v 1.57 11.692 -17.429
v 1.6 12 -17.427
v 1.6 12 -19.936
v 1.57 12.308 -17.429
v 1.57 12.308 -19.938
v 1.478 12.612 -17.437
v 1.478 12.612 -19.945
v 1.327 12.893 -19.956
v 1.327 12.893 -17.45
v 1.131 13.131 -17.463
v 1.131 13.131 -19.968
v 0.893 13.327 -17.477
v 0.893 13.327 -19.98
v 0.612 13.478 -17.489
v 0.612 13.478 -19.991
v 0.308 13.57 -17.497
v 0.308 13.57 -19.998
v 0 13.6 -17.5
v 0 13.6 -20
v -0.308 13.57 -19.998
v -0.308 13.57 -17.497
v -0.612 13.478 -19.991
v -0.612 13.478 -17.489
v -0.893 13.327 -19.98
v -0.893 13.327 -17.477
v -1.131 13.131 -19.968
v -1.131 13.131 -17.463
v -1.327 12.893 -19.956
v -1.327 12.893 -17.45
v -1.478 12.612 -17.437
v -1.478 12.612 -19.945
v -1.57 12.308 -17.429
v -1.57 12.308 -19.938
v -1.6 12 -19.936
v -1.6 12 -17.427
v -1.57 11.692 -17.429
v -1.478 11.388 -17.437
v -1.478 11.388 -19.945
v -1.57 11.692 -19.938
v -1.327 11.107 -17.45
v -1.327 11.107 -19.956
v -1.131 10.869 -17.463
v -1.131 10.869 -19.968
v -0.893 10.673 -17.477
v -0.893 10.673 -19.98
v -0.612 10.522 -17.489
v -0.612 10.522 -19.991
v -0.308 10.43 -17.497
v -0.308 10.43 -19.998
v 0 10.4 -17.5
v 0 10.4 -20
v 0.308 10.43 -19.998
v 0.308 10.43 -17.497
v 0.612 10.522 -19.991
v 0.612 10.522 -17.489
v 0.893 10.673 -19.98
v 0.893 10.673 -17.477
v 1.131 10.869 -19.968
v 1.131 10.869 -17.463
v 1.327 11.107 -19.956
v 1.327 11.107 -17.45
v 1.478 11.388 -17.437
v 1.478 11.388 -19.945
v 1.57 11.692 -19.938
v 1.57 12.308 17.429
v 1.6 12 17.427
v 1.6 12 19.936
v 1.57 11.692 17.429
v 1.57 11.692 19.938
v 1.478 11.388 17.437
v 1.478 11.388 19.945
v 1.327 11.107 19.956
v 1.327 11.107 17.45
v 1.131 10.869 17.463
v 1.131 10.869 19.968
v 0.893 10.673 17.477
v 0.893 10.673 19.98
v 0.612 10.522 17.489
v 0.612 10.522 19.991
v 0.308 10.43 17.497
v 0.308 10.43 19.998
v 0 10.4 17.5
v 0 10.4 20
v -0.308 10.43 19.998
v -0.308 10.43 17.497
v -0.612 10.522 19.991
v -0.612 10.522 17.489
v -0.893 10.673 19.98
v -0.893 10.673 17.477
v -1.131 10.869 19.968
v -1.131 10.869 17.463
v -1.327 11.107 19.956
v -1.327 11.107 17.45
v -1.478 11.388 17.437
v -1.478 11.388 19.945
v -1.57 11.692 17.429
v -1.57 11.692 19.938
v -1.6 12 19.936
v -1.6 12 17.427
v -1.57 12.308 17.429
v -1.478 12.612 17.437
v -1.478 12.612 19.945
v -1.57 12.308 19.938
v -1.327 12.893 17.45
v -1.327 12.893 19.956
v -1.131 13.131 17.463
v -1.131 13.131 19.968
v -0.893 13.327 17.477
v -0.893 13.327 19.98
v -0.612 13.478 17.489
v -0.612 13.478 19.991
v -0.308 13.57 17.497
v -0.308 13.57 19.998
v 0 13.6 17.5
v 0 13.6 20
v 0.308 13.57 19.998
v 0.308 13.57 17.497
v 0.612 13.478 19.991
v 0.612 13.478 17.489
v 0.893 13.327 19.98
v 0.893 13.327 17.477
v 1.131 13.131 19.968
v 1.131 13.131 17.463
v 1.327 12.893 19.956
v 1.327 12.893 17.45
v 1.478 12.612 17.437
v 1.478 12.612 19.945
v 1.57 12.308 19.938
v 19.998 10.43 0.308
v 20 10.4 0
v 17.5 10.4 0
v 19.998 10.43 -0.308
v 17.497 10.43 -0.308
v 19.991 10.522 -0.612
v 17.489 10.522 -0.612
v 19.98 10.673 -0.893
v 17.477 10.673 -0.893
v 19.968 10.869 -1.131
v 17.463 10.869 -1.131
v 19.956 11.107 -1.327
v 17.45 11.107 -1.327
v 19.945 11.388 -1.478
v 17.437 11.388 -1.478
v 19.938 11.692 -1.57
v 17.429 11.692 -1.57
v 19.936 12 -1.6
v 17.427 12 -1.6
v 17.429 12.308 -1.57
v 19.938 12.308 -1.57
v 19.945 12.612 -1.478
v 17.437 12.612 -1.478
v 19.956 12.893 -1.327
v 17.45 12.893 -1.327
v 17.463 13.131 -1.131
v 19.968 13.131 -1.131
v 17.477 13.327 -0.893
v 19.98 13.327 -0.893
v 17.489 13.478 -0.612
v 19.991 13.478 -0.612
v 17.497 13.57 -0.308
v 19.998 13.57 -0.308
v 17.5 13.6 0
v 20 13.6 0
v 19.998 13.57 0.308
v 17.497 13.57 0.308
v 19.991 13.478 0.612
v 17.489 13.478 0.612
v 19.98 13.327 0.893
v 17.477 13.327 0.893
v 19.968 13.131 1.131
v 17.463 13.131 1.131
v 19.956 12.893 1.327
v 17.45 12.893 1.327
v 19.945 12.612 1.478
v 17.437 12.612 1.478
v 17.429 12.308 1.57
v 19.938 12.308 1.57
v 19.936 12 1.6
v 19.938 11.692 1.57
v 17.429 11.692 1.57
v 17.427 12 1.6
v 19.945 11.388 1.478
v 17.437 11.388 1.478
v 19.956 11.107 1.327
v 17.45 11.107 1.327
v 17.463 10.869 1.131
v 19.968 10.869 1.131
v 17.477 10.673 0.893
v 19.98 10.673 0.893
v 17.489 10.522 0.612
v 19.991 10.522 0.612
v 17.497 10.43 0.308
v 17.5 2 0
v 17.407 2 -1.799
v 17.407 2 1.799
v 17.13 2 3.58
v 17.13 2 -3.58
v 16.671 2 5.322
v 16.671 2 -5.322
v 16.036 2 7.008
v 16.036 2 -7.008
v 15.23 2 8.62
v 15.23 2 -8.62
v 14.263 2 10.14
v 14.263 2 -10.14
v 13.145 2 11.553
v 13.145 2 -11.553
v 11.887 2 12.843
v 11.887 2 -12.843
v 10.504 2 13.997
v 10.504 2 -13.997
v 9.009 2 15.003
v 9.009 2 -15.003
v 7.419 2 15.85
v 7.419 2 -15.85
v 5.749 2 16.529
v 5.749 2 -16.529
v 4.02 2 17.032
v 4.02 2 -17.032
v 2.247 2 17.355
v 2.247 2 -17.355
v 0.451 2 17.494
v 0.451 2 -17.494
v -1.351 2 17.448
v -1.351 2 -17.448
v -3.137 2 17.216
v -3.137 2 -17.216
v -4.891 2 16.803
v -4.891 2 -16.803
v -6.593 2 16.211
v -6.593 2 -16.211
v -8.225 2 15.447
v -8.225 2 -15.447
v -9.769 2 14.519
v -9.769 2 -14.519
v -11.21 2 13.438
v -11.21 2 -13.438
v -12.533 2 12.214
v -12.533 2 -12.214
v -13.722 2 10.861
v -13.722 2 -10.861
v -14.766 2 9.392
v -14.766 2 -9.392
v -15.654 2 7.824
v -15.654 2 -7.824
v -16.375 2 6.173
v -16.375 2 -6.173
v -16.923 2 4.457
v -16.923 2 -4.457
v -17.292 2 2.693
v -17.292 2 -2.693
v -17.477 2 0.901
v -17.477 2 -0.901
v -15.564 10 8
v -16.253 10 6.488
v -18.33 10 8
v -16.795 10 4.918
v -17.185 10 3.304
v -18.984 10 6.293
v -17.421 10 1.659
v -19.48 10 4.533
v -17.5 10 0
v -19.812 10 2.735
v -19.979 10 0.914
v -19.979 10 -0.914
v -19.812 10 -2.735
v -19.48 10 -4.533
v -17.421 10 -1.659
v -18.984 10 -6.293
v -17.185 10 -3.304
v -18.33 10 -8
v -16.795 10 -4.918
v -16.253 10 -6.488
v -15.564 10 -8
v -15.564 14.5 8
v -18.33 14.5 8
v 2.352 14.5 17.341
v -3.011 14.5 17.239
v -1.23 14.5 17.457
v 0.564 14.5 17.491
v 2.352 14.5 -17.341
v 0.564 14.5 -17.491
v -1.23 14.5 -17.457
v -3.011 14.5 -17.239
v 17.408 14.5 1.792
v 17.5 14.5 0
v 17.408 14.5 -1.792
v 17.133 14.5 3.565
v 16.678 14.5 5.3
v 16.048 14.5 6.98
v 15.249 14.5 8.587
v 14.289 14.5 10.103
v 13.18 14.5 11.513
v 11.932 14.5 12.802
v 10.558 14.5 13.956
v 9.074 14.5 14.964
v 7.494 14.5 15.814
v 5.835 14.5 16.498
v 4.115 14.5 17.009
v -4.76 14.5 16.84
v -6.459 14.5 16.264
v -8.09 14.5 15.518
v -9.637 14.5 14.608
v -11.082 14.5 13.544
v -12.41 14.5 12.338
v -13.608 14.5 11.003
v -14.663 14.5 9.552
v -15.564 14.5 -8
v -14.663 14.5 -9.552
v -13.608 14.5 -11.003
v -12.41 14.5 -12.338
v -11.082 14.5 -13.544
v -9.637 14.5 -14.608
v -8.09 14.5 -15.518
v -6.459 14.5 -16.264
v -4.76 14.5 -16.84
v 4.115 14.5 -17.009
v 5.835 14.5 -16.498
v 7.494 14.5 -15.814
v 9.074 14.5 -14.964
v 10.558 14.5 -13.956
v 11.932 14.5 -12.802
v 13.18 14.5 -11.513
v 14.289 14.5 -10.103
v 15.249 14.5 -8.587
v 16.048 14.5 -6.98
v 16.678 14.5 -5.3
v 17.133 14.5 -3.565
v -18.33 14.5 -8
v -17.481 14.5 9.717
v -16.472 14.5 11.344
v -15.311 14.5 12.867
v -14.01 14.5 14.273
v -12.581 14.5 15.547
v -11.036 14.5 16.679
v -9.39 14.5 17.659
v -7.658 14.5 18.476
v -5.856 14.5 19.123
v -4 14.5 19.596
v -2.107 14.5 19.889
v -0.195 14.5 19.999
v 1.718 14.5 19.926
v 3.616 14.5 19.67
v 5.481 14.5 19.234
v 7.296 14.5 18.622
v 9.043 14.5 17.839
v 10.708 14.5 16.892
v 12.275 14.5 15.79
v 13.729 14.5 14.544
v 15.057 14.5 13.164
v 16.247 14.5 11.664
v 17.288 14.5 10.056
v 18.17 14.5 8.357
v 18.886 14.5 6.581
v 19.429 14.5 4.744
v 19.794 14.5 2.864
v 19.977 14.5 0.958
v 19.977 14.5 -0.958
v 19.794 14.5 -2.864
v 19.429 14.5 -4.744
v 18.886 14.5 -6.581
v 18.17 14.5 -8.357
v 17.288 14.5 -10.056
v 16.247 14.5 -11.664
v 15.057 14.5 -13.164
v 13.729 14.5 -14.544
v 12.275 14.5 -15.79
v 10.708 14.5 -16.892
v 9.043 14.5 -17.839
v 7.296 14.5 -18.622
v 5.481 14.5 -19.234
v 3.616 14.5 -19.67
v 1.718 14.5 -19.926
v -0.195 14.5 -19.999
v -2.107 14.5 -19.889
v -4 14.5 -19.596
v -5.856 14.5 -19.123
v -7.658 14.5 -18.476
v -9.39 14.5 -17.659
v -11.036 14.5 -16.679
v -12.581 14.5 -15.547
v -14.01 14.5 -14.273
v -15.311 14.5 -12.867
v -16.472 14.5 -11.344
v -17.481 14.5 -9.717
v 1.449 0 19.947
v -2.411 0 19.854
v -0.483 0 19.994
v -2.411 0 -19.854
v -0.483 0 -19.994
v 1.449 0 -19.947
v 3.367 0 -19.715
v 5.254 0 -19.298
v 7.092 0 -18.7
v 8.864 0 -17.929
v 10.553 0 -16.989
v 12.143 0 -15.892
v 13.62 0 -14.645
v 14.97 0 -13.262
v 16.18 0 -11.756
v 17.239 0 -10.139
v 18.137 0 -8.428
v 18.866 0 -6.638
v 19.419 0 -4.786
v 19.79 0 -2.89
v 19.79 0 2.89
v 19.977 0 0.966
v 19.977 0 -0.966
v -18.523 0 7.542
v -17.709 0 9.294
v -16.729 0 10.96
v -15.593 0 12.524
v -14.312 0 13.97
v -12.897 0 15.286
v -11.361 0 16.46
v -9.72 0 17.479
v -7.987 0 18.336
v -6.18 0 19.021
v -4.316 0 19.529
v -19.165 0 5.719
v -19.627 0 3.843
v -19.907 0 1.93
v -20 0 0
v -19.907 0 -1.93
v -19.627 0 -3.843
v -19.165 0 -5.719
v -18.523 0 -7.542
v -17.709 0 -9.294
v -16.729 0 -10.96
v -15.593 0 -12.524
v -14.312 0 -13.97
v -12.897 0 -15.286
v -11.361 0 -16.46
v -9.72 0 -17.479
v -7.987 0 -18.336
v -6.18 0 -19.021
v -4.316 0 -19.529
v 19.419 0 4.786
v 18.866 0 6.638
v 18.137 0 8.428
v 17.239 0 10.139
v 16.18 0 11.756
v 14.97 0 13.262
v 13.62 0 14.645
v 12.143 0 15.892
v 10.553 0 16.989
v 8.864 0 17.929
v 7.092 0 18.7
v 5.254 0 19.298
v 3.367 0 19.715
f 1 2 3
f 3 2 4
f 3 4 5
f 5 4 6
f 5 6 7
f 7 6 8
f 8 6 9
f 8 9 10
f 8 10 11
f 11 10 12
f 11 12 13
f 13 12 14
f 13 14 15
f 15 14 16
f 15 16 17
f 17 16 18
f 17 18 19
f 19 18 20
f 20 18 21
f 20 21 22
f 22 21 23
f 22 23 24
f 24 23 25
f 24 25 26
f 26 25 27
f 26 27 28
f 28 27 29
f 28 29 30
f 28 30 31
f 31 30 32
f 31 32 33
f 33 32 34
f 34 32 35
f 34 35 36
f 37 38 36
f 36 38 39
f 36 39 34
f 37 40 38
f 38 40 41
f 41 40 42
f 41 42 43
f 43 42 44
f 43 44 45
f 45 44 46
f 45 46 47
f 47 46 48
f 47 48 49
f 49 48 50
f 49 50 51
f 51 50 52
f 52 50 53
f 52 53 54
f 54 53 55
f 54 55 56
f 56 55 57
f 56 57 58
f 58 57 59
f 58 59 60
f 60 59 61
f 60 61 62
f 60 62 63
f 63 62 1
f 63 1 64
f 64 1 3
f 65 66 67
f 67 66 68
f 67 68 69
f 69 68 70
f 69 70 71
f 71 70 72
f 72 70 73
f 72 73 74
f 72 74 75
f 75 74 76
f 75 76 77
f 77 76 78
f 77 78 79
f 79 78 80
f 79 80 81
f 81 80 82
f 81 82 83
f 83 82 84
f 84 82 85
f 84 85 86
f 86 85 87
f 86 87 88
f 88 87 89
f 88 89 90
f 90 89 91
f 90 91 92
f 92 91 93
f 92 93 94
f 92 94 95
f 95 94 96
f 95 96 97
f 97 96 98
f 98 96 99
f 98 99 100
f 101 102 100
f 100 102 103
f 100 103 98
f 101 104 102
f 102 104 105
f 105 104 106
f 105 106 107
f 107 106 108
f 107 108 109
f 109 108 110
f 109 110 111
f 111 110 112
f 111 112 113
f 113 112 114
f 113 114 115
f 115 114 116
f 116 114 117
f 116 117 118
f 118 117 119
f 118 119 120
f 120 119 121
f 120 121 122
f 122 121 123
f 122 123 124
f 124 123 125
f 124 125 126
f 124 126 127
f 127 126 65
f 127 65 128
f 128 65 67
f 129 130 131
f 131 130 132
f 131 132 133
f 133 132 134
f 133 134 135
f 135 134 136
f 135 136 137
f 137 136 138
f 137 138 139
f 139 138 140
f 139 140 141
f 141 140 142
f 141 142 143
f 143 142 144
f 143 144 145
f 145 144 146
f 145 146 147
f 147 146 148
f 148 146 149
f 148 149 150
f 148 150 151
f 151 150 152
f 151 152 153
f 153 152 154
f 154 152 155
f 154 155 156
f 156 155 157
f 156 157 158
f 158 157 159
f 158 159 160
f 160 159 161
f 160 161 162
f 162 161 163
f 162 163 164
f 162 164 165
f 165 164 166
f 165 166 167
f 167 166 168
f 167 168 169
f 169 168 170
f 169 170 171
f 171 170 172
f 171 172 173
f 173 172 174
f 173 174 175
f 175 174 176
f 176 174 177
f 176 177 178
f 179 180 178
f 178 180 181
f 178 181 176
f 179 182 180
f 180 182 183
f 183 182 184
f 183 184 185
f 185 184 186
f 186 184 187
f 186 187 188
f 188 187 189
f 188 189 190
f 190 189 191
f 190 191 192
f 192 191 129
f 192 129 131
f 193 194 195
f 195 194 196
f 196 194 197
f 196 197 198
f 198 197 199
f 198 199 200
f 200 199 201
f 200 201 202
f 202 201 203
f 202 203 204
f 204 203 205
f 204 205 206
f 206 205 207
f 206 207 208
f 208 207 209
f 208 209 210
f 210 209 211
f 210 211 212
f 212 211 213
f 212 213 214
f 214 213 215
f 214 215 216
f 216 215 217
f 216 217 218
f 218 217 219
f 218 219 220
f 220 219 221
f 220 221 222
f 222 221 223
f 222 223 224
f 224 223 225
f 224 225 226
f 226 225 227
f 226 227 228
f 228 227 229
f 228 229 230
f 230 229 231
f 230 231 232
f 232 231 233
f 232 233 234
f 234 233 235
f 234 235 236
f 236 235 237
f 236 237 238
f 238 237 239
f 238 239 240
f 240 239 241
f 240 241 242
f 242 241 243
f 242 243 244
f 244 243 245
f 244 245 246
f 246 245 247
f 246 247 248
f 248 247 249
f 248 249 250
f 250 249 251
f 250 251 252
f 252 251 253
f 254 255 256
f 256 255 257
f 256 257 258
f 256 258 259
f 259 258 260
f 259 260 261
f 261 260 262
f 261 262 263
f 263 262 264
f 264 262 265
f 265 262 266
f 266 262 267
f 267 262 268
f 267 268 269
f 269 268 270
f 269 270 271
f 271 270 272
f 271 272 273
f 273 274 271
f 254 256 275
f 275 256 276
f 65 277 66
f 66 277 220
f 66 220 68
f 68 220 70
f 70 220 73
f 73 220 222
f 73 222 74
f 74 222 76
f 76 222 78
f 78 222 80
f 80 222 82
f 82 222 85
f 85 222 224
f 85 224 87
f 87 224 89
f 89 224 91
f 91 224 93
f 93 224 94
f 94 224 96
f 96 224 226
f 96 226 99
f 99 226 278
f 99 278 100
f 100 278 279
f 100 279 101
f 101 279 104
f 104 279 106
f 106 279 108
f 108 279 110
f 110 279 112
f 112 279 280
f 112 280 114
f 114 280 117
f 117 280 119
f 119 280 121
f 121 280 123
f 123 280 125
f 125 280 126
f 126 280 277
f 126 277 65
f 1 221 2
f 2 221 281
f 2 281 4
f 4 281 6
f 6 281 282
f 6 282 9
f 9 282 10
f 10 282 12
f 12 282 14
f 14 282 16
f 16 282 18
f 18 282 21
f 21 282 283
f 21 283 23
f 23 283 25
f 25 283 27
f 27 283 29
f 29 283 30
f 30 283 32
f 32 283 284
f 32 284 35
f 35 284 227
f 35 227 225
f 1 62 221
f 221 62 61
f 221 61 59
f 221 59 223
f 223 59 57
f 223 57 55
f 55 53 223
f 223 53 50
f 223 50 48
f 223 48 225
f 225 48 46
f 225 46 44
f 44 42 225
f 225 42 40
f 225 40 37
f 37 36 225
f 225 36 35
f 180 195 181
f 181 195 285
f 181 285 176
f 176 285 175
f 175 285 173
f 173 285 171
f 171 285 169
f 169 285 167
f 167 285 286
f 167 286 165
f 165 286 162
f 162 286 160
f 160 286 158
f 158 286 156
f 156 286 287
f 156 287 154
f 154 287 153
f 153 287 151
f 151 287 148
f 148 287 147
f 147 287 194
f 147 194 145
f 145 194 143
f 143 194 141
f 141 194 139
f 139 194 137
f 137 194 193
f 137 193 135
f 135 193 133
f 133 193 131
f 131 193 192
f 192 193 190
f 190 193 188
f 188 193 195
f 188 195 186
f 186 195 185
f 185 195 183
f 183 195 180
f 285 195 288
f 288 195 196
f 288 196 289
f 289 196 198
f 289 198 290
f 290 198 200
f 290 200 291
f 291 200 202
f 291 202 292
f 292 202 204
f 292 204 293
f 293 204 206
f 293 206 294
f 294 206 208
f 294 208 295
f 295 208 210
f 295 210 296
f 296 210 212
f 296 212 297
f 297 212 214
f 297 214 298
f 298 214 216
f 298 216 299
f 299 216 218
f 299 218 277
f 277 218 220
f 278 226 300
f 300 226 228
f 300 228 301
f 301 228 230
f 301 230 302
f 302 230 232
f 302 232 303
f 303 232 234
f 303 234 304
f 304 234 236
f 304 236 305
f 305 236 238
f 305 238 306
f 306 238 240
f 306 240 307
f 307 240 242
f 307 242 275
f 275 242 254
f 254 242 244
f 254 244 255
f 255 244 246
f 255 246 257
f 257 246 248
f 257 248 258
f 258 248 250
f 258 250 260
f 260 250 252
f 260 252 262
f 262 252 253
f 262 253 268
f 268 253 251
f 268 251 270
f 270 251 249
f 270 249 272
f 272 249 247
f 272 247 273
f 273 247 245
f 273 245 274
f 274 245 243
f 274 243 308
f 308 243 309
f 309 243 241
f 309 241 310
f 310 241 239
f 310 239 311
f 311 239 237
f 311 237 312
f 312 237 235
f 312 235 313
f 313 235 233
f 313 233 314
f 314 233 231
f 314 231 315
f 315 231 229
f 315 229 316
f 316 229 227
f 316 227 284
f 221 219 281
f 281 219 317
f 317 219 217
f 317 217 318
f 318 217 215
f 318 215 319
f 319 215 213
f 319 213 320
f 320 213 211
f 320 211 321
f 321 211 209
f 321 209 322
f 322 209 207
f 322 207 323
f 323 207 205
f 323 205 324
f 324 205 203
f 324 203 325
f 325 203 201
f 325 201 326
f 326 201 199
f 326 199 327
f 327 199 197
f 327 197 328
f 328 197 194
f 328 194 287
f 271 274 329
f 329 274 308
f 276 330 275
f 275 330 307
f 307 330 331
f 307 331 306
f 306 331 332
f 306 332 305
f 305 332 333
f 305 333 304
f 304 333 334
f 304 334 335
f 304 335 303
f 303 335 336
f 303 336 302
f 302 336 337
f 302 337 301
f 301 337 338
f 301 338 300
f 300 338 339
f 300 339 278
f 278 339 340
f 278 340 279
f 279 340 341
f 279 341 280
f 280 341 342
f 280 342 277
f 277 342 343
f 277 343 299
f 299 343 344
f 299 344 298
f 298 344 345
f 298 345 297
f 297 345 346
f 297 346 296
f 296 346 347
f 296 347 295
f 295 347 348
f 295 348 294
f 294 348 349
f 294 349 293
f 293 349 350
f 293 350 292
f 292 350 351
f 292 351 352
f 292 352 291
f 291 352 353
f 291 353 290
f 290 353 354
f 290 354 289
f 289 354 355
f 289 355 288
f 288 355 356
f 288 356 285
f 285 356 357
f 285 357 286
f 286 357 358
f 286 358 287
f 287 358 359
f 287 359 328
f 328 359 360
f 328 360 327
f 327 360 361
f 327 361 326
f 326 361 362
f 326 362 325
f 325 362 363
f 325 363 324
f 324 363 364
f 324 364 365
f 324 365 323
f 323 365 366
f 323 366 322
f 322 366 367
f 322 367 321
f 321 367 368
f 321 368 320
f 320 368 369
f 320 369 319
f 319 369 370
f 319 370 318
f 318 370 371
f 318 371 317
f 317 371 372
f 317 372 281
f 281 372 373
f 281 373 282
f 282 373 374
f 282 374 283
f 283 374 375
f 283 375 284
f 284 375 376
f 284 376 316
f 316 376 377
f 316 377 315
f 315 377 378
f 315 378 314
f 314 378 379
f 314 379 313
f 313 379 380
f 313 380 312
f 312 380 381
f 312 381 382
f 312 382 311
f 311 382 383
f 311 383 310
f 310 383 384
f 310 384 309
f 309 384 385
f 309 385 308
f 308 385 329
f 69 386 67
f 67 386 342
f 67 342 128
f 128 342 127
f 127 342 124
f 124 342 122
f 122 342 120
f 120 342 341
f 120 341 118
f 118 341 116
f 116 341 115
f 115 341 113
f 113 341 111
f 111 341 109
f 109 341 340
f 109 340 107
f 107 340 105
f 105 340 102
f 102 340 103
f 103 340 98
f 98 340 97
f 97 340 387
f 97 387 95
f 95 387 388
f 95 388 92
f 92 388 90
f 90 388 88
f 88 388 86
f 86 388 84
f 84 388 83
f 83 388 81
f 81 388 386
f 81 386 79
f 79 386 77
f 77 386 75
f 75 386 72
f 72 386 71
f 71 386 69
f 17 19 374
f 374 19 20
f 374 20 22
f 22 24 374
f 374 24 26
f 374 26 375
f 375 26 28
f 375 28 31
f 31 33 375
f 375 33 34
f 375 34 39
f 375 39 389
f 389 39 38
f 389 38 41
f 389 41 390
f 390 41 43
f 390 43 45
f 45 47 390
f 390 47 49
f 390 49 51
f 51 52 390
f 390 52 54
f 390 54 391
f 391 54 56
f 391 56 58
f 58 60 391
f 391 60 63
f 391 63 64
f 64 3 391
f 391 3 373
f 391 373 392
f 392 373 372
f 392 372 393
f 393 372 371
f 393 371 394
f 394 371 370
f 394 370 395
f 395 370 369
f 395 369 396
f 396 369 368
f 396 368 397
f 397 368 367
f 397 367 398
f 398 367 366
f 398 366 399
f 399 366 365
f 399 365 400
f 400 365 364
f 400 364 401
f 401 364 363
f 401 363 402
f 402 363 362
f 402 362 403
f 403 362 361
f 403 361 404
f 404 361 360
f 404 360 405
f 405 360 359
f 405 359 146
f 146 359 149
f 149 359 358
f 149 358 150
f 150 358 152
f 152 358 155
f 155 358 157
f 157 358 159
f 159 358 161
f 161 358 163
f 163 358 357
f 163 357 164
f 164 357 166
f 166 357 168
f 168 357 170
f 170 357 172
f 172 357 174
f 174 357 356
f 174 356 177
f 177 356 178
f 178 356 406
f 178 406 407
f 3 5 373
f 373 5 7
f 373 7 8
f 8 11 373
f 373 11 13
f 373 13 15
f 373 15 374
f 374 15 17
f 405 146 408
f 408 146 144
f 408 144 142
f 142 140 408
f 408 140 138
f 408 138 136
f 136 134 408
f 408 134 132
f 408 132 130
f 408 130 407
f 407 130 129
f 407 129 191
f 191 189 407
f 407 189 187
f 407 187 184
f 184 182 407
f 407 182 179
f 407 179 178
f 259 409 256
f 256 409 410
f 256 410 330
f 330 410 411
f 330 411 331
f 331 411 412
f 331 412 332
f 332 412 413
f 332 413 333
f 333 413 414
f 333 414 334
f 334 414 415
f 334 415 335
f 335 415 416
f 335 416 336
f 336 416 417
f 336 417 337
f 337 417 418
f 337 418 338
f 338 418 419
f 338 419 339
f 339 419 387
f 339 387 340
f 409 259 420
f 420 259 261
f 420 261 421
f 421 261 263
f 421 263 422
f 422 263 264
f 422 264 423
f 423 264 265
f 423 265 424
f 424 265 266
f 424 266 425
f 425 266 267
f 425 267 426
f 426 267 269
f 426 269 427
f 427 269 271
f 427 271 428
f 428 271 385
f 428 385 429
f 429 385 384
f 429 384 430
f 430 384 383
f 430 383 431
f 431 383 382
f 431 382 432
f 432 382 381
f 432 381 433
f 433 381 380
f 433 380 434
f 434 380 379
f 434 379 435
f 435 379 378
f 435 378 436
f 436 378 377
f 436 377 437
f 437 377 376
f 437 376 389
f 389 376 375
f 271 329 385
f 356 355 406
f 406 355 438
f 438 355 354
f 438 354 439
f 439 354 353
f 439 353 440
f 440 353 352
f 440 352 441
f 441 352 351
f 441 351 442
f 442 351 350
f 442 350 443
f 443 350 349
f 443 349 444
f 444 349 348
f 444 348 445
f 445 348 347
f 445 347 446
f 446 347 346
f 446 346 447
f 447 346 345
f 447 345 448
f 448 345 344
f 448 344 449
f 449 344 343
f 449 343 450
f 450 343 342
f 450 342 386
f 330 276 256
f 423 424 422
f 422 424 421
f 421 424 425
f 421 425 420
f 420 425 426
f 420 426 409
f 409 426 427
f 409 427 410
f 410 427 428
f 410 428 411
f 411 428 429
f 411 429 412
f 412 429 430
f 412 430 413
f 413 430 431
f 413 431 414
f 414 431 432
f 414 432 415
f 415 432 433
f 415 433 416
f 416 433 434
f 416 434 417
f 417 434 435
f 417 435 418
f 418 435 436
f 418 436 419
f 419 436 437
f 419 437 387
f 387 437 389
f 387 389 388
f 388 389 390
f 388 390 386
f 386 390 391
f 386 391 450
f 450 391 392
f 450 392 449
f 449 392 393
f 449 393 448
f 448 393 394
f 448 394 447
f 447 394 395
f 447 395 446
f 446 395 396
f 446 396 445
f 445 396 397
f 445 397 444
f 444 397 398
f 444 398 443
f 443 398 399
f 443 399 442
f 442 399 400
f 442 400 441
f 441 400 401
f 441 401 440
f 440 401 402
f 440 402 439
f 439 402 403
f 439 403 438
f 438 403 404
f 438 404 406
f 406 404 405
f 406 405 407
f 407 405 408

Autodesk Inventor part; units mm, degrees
ref_plane "YZ Plane" through (0, 0, 0) normal (1, 0, 0) x (0, 1, 0)
sketch "Sketch1" plane through (0, 0, 0) normal (0, 1, 0) x (-1, 0, 0)
  circle A0 centre (0, 0) radius 20
  dimension "d0" = 40
extrude "Extrusion1" add sketch "Sketch1" along normal blind 10
sketch "Sketch2" plane through (0, 10, 0) normal (0, 1, 0) x (1, 0, 0)
  circle A0 centre (0, 0) radius 17.5
  circle A1 centre (0, 0) radius 20 projected
  line L0 (-18.3303, 8) -> (-15.5644, 8)
  line L1 (-18.3303, -8) -> (-15.5644, -8)
  circle A2 centre (0, 0) radius 20
  point P0 (-16.9473, 8)
  dimension "d3" = 35
  dimension "d4" = 8
  dimension "d5" = 8
  dimension "d6" = 40
extrude "Extrusion2" add sketch "Sketch2" along normal blind 4.5 contours A0 L0 A1 L1 picked at (18.7918, -3.0381)
sketch "Sketch3" plane through (0, 10, 0) normal (0, 1, 0) x (1, 0, 0)
  circle A0 centre (0, 0) radius 17.5
extrude "Extrusion3" cut sketch "Sketch3" against normal blind 8
sketch "Sketch4" plane through (0, 14.5, 0) normal (0, 1, 0) x (1, 0, 0)
  circle A0 centre (0, 0) radius 20 projected
  point P0 (0, -20.0355)
  point P1 (20, 0)
  point P2 (0, 20)
ref_plane "Work Plane1" through (20, 14.5, 0) normal (1, 0, 0) x (0, 1, 0)
sketch "Sketch5" plane through (20, 14.5, 0) normal (1, 0, 0) x (0, 1, 0)
  circle A0 centre (-2.5, 0) radius 1.6
  line L0 (0, -20) -> (0, 20) projected
  point P0 (-14.5, 0)
  point P1 (0, 8)
  point P2 (0, -8)
  dimension "d11" = 3.2
  dimension "d12" = 2.5
extrude "Extrusion4" cut sketch "Sketch5" against normal up to surface
ref_plane "Work Plane2" through (0, 14.5, -20) normal (0, 0, -1) x (-1, 0, 0)
sketch "Sketch6" plane through (0, 14.5, -20) normal (0, 0, -1) x (-1, 0, 0)
  circle A0 centre (0, -2.5) radius 1.6
  line L0 (18.3303, 0) -> (-20, 0) projected
  point P0 (0, -14.5)
  dimension "d15" = 3.2
  dimension "d16" = 2.5
extrude "Extrusion5" cut sketch "Sketch6" against normal through all
sketch "Sketch7" plane through (0, 10, 0) normal (0, 1, 0) x (1, 0, 0)
  line L0 (-13, -3.3) -> (-13, 5.1)
  line L1 (-13, 5.1) -> (-18.25, 5.1)
  line L2 (-18.25, 5.1) -> (-18.25, -3.3)
  line L3 (-16.25, -5.3) -> (-15, -5.3)
  arc A0 (-15, -5.3) -> (-13, -3.3) centre (-15, -3.3) ccw
  arc A1 (-18.25, -3.3) -> (-16.25, -5.3) centre (-16.25, -3.3) ccw
  arc A2 (-18.3303, 8) -> (-18.3303, -8) centre (0, 0) ccw projected
  point P0 (-18.25, -5.3)
  dimension "d19" = 10.4
  dimension "d20" = 5.25
  dimension "d21" = 2
  dimension "d25" = 18.25
  dimension "d26" = 5.1
extrude "Extrusion6" [suppressed]
properties part number "Payload Adapter V2 No XT30"
